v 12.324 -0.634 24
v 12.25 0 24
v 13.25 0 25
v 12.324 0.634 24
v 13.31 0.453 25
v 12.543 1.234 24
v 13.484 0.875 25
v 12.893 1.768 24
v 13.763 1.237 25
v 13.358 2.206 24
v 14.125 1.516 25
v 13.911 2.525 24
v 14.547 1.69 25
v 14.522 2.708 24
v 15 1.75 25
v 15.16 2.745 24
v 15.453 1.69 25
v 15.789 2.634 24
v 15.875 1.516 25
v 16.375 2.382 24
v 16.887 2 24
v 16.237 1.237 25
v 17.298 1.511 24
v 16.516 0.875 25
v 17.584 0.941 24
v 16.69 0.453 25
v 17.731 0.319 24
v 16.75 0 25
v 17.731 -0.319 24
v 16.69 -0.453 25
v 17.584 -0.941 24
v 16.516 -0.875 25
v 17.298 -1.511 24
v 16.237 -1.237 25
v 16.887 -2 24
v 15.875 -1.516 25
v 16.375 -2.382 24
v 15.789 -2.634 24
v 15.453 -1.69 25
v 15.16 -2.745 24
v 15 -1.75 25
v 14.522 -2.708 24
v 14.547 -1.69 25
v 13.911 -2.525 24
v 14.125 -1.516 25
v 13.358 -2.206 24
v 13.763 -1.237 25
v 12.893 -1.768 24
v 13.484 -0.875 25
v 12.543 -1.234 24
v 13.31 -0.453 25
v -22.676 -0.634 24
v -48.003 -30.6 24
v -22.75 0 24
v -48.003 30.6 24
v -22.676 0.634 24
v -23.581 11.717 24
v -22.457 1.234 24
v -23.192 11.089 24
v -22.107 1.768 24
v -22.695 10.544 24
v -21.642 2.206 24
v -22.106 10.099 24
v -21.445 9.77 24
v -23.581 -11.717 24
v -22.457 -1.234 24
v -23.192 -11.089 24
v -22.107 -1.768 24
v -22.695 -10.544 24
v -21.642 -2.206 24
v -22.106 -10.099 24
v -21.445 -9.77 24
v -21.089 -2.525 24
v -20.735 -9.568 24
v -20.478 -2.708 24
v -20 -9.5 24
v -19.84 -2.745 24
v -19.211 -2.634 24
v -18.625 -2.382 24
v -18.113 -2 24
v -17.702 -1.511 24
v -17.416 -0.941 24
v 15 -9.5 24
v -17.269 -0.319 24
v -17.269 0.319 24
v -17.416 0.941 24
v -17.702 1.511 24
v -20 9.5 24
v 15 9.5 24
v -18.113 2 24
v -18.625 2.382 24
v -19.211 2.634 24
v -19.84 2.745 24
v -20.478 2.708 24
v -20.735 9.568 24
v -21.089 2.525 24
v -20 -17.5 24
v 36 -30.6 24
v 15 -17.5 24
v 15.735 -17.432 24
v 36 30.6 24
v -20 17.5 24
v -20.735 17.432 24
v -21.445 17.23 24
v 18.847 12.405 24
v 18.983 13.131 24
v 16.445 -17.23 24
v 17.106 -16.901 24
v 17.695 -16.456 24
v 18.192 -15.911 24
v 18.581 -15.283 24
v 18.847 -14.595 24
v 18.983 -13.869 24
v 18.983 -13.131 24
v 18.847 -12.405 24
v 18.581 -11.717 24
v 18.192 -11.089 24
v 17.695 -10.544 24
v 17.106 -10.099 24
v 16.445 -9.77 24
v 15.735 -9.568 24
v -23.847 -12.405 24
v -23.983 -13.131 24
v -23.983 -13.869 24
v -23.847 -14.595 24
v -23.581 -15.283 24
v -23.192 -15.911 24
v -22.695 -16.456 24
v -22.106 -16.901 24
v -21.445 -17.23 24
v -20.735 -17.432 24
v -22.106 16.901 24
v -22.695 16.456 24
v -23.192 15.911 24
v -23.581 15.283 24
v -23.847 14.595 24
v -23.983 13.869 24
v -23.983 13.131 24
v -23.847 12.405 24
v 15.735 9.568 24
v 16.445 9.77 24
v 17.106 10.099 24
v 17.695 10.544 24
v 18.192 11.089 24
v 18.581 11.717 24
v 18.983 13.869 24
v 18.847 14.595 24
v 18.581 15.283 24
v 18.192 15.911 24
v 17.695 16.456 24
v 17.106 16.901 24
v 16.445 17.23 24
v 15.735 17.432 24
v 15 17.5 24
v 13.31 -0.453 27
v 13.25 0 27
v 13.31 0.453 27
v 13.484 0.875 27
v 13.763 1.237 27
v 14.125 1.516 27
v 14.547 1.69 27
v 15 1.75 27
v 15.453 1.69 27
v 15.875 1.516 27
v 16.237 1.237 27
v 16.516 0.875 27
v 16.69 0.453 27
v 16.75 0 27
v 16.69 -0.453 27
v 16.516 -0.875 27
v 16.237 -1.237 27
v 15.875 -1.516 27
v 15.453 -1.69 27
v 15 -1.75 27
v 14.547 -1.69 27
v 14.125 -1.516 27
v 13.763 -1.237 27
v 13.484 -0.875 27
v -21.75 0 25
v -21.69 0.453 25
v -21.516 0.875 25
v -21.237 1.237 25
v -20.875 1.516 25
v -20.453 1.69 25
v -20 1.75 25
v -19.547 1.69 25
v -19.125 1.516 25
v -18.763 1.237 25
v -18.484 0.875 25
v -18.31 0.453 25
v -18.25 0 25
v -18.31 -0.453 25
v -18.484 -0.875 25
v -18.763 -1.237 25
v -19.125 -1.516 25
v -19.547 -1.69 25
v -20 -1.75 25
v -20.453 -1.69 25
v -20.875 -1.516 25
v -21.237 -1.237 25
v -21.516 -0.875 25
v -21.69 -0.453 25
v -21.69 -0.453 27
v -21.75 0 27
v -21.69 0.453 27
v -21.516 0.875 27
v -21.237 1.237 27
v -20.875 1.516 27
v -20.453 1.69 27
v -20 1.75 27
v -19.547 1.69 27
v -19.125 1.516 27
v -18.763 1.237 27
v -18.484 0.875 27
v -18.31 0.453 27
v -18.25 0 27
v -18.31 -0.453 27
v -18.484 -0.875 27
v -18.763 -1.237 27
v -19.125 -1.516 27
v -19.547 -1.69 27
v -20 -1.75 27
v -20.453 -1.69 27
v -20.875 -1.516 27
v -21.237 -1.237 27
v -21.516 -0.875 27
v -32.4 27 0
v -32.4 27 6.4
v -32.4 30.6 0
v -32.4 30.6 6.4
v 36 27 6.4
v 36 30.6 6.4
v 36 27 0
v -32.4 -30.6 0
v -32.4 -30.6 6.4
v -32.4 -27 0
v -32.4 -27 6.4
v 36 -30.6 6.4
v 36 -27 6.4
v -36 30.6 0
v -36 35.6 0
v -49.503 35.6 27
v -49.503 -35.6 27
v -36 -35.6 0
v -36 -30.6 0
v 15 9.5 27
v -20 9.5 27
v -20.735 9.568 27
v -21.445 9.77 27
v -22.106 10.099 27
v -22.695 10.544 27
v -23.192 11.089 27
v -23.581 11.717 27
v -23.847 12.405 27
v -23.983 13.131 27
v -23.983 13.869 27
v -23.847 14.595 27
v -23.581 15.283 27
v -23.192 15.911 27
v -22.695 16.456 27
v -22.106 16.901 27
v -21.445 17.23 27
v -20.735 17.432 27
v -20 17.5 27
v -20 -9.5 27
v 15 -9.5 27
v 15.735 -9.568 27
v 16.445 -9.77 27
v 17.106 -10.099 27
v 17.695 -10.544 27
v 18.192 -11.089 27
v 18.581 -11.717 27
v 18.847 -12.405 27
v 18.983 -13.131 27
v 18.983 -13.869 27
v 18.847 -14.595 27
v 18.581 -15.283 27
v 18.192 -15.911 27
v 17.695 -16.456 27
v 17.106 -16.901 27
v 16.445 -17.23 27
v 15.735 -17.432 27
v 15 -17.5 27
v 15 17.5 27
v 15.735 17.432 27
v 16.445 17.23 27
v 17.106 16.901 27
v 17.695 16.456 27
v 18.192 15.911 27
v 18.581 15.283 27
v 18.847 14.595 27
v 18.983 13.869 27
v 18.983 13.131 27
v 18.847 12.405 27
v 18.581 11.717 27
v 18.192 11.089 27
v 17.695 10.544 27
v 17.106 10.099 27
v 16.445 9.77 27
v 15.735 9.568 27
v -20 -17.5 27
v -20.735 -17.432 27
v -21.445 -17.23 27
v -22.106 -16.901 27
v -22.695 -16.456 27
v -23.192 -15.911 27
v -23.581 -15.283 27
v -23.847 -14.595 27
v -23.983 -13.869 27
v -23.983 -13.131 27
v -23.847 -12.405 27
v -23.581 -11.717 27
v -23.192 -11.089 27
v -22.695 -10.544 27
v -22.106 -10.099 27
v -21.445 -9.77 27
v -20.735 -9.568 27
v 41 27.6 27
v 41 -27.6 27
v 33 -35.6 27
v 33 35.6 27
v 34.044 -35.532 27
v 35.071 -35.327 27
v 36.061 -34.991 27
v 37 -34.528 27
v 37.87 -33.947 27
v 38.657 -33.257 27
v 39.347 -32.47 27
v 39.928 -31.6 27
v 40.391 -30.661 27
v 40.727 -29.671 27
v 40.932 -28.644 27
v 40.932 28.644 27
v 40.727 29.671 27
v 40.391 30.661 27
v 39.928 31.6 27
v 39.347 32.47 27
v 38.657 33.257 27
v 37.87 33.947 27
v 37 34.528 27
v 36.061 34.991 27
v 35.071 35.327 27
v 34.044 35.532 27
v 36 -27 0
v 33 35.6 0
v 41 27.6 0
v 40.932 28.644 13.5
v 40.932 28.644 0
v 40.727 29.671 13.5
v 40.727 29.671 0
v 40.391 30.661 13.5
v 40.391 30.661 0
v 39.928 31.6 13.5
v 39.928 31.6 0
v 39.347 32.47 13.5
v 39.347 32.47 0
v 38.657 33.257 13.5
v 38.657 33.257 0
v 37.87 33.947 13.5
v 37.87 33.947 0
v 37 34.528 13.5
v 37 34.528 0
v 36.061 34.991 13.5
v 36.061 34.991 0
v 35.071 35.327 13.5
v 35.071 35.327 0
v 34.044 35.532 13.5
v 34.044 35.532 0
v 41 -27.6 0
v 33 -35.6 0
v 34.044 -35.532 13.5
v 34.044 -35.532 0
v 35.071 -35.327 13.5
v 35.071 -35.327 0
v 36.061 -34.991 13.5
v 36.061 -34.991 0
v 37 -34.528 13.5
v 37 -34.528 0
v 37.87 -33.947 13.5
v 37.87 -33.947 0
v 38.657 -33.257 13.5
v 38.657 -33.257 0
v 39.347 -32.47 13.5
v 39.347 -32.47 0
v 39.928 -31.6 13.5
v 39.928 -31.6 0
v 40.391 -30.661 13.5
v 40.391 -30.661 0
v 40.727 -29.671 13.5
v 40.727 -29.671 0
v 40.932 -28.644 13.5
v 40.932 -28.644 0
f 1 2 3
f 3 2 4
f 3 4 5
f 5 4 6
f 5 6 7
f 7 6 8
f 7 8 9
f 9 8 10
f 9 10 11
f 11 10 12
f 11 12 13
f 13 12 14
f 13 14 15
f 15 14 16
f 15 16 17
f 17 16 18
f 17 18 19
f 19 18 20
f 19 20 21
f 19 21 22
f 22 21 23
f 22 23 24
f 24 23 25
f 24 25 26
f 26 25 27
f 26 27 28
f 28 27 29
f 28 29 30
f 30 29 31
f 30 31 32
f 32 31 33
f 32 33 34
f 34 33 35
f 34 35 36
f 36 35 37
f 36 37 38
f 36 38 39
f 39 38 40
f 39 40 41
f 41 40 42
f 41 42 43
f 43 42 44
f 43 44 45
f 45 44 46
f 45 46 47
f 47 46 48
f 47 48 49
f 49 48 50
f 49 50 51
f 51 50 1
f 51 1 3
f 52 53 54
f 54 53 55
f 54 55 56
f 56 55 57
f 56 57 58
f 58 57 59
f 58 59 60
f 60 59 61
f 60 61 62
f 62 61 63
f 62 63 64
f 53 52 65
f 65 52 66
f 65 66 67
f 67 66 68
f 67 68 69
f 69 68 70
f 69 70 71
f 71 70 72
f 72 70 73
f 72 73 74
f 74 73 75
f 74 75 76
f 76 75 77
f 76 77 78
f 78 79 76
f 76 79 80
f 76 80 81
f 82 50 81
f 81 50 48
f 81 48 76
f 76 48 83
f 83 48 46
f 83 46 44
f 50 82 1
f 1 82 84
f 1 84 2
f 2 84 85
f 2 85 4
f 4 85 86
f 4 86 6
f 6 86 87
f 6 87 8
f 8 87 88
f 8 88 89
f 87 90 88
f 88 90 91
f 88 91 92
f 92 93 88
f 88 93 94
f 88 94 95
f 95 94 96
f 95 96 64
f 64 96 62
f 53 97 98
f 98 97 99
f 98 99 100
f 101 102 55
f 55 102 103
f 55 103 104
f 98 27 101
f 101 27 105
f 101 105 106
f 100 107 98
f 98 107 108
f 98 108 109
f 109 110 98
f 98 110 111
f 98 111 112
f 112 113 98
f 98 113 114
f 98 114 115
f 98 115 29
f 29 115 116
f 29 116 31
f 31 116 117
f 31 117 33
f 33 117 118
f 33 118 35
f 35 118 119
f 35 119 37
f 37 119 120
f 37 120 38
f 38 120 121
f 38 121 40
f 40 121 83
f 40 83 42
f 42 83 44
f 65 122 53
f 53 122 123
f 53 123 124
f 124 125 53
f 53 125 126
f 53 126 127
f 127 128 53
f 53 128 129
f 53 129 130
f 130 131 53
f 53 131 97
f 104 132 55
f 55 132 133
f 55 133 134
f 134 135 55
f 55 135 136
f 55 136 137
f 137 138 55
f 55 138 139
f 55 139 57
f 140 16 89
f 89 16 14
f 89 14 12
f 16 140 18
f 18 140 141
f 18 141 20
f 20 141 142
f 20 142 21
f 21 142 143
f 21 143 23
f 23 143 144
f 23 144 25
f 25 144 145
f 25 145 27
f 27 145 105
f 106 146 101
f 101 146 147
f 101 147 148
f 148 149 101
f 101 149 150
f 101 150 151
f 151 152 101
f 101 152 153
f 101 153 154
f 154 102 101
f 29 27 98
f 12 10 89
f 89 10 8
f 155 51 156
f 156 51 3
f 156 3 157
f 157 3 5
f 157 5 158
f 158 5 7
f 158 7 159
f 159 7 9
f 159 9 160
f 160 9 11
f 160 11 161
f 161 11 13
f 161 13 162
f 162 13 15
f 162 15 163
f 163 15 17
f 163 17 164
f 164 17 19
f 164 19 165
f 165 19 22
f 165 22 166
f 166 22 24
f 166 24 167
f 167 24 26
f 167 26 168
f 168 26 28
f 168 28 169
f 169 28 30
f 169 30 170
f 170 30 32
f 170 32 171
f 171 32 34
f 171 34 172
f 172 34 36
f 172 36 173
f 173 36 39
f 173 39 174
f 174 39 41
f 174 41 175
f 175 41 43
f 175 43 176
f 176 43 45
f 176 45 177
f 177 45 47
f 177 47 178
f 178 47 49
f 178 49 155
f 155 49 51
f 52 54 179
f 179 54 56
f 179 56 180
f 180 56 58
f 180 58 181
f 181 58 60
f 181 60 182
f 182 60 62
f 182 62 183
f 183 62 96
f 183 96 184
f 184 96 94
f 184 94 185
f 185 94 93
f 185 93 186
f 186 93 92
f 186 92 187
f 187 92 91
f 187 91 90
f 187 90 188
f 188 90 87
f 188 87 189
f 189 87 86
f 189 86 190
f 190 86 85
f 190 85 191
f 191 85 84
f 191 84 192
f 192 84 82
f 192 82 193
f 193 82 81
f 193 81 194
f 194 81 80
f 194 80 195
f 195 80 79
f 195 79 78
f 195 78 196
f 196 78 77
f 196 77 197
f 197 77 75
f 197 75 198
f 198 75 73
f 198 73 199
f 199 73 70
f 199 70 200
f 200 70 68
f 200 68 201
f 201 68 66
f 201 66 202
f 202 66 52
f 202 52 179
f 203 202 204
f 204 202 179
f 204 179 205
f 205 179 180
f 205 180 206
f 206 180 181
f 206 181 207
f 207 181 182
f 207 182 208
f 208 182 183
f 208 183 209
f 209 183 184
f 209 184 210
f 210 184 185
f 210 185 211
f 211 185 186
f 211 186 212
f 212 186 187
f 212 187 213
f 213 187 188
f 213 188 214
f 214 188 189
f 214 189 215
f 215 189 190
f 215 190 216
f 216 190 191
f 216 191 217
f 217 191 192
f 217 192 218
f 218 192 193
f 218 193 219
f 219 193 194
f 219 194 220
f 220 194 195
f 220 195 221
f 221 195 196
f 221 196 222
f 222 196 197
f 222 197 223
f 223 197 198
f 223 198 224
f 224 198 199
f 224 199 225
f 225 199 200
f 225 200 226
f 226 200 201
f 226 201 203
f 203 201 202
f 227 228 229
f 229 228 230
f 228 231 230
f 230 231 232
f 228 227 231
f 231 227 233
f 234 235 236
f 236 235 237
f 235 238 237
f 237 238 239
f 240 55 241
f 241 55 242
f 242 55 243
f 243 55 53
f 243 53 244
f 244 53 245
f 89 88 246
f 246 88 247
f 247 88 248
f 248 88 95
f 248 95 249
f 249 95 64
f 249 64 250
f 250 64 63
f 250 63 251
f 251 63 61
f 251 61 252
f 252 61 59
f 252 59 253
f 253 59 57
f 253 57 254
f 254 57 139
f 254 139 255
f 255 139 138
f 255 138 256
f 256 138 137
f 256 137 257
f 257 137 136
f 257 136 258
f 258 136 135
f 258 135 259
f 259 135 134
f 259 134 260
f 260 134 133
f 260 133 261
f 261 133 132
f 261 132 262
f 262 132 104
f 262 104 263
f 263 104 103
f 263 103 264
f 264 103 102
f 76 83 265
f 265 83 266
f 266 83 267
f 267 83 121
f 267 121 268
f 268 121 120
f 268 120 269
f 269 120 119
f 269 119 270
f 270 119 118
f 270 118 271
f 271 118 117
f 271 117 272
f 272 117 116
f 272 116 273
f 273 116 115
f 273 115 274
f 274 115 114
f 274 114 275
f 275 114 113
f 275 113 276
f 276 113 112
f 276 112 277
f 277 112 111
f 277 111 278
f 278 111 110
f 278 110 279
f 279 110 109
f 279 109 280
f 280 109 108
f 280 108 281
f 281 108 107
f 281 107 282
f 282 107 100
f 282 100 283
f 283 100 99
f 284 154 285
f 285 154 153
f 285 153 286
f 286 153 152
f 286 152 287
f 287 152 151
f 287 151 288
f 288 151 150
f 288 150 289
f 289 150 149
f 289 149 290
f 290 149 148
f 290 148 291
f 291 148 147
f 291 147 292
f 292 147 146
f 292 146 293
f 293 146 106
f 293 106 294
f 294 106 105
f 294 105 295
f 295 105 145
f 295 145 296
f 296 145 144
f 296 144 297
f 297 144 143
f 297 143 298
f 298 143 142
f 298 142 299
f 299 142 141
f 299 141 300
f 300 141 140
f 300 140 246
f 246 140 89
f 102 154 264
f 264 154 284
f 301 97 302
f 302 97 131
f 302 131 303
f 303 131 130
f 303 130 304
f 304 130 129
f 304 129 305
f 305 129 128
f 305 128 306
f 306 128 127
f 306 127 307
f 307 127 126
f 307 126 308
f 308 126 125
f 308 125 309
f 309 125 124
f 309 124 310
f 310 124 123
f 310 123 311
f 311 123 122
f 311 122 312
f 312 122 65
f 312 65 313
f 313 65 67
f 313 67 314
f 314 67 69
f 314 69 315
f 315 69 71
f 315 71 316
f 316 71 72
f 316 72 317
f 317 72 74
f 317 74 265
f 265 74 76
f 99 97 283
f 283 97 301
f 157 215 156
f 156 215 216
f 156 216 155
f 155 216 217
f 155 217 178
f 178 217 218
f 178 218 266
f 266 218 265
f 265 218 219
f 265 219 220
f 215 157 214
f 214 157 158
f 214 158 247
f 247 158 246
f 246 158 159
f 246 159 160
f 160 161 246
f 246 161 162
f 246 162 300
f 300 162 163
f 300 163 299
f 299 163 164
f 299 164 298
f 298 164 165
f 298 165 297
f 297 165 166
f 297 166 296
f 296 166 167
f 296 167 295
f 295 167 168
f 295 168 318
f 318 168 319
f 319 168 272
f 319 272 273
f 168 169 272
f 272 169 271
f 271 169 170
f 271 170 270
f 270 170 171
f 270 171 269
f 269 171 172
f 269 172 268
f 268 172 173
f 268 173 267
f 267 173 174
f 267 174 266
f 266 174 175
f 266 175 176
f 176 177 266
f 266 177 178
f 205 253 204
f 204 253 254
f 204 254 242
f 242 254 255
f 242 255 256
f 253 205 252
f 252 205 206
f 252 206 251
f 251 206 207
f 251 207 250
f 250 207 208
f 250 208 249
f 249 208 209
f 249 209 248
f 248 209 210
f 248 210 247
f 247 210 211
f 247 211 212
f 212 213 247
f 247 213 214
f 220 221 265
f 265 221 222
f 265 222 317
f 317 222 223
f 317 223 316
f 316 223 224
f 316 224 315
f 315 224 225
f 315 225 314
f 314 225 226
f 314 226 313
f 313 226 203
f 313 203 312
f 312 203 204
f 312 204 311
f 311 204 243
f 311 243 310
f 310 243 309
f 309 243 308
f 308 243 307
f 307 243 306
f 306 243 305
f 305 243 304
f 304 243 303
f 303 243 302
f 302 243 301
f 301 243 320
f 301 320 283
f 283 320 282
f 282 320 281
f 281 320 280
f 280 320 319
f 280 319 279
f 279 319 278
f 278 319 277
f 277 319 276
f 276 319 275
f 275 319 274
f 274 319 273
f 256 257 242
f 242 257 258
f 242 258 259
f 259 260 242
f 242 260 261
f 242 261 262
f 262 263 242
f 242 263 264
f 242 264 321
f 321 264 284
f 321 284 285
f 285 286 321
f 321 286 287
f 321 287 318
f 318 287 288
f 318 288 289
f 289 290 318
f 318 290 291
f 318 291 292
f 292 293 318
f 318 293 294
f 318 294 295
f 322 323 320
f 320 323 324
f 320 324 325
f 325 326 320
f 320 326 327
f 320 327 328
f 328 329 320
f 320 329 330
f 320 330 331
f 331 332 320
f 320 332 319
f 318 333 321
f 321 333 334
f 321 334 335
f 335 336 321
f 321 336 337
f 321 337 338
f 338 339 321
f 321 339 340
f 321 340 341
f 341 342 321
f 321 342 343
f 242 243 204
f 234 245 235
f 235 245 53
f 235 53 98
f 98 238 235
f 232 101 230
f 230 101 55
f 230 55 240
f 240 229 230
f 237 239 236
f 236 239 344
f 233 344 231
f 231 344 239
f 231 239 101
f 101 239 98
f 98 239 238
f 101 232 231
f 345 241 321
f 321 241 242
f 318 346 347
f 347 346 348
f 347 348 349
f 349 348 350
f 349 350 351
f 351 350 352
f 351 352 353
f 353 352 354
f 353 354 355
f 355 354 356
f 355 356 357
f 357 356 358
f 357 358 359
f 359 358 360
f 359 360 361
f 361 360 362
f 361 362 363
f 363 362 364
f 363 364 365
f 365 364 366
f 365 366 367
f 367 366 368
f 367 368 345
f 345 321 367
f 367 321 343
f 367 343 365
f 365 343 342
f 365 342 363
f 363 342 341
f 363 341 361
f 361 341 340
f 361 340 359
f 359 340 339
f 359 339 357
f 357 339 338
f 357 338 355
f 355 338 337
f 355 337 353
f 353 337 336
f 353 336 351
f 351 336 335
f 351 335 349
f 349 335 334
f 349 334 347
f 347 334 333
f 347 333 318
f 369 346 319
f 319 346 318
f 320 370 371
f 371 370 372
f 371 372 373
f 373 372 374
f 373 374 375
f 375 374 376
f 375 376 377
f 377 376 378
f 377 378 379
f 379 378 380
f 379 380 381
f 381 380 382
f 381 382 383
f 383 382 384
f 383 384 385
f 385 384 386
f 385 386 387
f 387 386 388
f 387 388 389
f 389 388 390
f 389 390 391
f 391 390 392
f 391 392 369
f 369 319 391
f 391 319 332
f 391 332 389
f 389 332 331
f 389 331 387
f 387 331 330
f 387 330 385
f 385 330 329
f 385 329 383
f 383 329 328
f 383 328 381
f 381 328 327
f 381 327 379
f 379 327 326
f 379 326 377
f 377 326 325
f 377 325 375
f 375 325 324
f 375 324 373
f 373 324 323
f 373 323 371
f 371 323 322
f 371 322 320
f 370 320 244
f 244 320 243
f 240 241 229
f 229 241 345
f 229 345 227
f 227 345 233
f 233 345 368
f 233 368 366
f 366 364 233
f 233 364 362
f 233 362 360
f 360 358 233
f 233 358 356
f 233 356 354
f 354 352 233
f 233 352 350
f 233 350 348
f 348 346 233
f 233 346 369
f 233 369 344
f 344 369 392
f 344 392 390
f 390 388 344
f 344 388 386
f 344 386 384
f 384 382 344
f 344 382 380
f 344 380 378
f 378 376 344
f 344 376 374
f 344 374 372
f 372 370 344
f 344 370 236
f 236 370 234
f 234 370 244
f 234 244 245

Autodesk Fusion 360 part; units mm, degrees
sketch "Sketch1" plane through (0, 0, 0) normal (0, 0, 1) x (1, 0, 0)
  line L0 (36, 27) -> (-36, 27)
  line L1 (-36, 27) -> (-36, -27)
  line L2 (-36, -27) -> (36, -27)
  line L3 (36, -27) -> (36, 27)
  line L4 (36, 30.6) -> (-36, 30.6)
  line L5 (-36, 35.6) -> (-36, -30.6)
  line L6 (-36, -30.6) -> (36, -30.6)
  line L7 (36, -30.6) -> (36, 30.6)
  line L8 (33, 35.6) -> (-36, 35.6)
  line L9 (41, -27.6) -> (41, 27.6)
  line L10 (33, -35.6) -> (-36, -35.6)
  line L11 (-36, -35.6) -> (-36, 30.6)
  arc A0 (41, 27.6) -> (33, 35.6) centre (33, 27.6) ccw
  arc A1 (33, -35.6) -> (41, -27.6) centre (33, -27.6) ccw
  circle A2 centre (-20, 0) radius 1.75
  circle A3 centre (15, 0) radius 1.75
  line L12 (-20, 9.5) -> (15, 9.5)
  arc A4 (15, 9.5) -> (15, 17.5) centre (15, 13.5) ccw
  line L13 (15, 17.5) -> (-20, 17.5)
  arc A5 (-20, 17.5) -> (-20, 9.5) centre (-20, 13.5) ccw
  line L14 (-20, 13.5) -> (15, 13.5) construction
  line L15 (1.75, 0) -> (22.5, 0)
  line L16 (-20, -9.5) -> (15, -9.5)
  line L17 (15, -17.5) -> (-20, -17.5)
  arc A6 (15, -17.5) -> (15, -9.5) centre (15, -13.5) ccw
  arc A7 (-20, -9.5) -> (-20, -17.5) centre (-20, -13.5) ccw
  dimension "d1" = 72
  dimension "d2" = 54
  dimension "d3" = 61.2
  dimension "d6" = 8
  dimension "d32" = 3.5
  dimension "d33" = 3.5
  dimension "d34" = 8
extrude "Extrude1" add sketch "Sketch1" along normal blind 6.4 contours L3 L4 L5 L6 L7 L8 L9 L10 L11 A0 A1 | L0 L4 L5 L7 L11 | L2 L5 L6 L7 L11
extrude "Extrude2" add sketch "Sketch1" along normal blind 24 contours L3 L4 L5 L6 L7 L8 L9 L10 L11 A0 A1
extrude "Extrude3" add sketch "Sketch1" along normal blind 27 and the other way blind -24
sketch "Sketch2" plane through (0, -35.6, 0) normal (0, -1, 0) x (1, 0, 0)
  line L0 (-36, 0) -> (33, 0)
  line L1 (33, 0) -> (33, 27)
  line L2 (-36, 27) -> (-36, 0)
  line L3 (-36, 0) -> (-49.5029, 27)
  line L4 (-36, 0) -> (-6, 0) construction
  line L5 (-36, 27) -> (-49.5029, 27)
  line L6 (33, 27) -> (-36, 27)
  line L7 (-36, 27) -> (-36, 24)
  line L8 (-36, 24) -> (-36.4845, 24)
  line L9 (-36.4845, 24) -> (-48.0026, 24)
  line L10 (-36, 0) -> (-36, 6.4)
  line L11 (-36, 6.4) -> (-36, 6)
  line L12 (-36, 6.4) -> (-39.2007, 6.4)
  line L13 (-36, 0) -> (-32.4, 0)
  line L14 (-49.5029, 27) -> (-47.5029, 27)
  line L15 (-36, 6.4) -> (-32.4, 6.4)
  line L16 (-32.4, 6.4) -> (-32.4, 0)
  dimension "d11" = 116.57
  dimension "d25" = 6.4
  dimension "d36" = 3.6
  dimension "d37" = 2
extrude "Extrude4" add sketch "Sketch2" against normal blind 5 contours L2 L3 L10 L11 L12 | L2 L3 L8 L9 L12
extrude "Extrude5" add sketch "Sketch2" along normal blind -71.2 and the other way blind 66.2 contours L2 L3 L10 L11 L12 | L2 L3 L8 L9 L12
extrude "Extrude6" add sketch "Sketch2" against normal blind 71.2 contours L2 L3 L5 L7 L8 L9 L14
extrude "Extrude7" cut sketch "Sketch2" along normal blind -8.6 and the other way blind 5 contours L0 L2 L10 L11 L13 L15 L16
extrude "Extrude8" cut sketch "Sketch2" along normal blind -66.2 and the other way blind 62.6 contours L0 L2 L10 L11 L13 L15 L16
chamfer "Chamfer1" distance 1 angle 45 2 edges at (-21.6316, 0.6328, 24) (13.3684, 0.6328, 24)
